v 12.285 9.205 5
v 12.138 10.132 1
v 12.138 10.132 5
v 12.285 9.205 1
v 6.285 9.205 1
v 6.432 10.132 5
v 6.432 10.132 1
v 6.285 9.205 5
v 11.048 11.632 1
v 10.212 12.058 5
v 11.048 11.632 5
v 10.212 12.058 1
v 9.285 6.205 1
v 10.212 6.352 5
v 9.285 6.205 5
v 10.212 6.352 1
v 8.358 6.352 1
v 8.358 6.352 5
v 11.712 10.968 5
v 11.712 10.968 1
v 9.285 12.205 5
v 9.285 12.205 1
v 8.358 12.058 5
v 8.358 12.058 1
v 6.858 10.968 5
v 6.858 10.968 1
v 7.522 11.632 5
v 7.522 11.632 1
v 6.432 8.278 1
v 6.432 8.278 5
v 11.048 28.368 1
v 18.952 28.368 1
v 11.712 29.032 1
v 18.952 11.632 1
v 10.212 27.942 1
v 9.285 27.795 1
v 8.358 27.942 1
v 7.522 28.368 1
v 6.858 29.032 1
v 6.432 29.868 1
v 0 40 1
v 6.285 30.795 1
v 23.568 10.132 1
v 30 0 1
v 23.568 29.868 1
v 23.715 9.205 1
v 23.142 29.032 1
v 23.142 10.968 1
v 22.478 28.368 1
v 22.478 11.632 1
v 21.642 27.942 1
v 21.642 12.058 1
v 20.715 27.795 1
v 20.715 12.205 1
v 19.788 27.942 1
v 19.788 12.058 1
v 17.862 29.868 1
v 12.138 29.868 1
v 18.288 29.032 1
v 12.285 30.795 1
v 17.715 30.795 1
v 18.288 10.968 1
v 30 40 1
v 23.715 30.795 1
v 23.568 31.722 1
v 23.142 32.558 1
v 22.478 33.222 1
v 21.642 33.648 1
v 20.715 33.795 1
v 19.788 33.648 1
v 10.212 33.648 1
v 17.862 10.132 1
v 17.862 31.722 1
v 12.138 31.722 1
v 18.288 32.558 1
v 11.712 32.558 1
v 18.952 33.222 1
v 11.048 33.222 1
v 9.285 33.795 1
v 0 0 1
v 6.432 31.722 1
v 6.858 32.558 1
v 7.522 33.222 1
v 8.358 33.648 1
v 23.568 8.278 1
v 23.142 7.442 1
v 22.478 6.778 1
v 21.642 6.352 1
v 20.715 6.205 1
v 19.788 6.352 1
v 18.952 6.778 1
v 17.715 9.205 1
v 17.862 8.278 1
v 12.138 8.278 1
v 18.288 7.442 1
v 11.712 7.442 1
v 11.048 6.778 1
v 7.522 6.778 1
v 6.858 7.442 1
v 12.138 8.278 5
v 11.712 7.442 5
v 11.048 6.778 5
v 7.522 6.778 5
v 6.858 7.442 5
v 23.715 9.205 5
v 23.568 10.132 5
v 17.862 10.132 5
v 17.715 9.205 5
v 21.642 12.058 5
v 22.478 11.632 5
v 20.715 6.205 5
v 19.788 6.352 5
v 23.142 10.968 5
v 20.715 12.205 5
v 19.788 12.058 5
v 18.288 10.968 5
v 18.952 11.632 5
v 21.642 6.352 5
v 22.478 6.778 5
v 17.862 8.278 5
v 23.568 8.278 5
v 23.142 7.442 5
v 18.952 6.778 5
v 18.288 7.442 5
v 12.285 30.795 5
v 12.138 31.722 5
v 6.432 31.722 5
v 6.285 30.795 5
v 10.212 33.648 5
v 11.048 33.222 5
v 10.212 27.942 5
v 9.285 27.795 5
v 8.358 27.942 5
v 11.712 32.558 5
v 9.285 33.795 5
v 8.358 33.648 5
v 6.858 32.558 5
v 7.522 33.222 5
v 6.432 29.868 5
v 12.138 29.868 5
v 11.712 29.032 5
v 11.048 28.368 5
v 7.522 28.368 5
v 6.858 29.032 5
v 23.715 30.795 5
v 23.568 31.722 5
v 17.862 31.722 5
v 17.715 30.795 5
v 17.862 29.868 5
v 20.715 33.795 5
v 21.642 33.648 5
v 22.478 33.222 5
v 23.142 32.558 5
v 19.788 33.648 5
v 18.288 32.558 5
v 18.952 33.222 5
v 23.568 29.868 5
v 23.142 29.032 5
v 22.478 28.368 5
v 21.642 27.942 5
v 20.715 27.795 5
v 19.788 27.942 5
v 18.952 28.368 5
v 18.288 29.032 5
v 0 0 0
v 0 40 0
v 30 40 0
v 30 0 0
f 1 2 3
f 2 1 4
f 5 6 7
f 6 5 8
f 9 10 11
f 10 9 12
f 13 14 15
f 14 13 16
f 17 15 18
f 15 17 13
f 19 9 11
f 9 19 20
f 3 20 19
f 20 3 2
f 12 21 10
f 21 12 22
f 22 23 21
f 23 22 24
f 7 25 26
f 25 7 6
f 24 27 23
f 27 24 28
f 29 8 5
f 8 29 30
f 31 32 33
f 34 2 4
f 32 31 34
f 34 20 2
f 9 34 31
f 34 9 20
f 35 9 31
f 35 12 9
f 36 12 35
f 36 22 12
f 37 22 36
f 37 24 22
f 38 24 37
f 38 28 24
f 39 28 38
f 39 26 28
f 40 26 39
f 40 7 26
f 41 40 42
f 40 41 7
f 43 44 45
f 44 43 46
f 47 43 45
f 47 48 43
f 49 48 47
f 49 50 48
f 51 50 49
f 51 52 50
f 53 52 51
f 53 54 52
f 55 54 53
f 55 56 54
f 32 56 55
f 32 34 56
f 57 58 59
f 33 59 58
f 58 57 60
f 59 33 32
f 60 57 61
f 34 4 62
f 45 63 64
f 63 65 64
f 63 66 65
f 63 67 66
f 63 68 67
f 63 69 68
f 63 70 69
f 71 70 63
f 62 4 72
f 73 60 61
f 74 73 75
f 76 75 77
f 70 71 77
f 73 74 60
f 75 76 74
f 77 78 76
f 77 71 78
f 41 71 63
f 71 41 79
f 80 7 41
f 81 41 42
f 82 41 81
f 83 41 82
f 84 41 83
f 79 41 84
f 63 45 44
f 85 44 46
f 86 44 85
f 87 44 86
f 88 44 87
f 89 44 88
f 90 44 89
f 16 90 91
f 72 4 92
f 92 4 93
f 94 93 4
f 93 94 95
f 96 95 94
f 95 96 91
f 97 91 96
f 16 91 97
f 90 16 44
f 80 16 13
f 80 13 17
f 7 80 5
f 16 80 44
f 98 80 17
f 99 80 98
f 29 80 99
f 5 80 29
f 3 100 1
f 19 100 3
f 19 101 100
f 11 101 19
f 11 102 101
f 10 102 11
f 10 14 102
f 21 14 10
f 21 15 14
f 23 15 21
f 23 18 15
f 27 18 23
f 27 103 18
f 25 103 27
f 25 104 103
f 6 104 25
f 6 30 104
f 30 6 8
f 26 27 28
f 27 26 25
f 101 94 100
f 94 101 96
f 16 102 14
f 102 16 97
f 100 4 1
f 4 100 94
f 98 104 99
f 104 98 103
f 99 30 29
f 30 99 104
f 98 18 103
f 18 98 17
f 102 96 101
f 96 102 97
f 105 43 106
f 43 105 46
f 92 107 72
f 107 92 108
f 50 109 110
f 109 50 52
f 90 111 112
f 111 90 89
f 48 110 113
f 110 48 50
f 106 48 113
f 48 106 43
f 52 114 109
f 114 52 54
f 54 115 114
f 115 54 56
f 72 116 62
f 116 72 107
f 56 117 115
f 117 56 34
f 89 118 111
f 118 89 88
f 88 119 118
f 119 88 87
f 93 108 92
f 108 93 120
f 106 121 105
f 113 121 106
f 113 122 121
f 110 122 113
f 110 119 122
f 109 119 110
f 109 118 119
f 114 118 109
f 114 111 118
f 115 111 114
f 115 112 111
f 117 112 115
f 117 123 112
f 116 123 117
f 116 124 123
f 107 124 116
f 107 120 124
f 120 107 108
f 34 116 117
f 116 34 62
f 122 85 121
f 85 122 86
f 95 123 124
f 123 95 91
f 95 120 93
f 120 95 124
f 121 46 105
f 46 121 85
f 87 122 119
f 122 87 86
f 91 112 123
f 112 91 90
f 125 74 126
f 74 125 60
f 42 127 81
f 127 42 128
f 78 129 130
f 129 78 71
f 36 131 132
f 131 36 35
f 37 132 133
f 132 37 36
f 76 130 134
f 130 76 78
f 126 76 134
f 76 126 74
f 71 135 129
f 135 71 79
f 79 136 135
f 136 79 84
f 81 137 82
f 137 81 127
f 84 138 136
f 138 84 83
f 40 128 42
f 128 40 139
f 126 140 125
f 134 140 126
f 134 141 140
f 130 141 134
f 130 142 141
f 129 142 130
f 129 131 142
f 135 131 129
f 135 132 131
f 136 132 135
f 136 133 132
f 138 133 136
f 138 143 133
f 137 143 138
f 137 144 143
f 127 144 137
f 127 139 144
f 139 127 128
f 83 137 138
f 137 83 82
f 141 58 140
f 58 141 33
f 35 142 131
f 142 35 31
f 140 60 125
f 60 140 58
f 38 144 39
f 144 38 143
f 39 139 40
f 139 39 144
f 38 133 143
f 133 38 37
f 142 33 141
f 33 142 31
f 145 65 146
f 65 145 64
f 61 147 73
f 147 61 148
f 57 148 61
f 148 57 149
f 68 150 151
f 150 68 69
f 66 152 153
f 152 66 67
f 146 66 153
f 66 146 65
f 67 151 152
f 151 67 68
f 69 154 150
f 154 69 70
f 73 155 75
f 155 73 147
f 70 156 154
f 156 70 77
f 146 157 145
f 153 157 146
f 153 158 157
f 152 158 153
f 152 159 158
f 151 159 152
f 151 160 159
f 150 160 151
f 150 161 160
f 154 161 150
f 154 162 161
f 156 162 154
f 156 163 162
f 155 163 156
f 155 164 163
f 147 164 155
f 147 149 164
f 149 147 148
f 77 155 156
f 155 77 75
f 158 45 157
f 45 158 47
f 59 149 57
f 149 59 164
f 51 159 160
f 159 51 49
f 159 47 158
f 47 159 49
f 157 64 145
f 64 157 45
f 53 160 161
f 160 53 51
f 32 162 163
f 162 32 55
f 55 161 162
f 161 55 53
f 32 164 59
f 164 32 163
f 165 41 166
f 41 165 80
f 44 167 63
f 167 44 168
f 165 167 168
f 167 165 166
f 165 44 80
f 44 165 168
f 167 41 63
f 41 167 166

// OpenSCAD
// file: ../../trinket-mini-mounting-standoffs.scad
function xHoleDeltaBottomRight() = 11.43;

function yHoleDelta() = 21.59;

module trinketMiniStandoffs()
{
    radius = 3;
    height = 4;
    sides = 20;
    
    // this is the 'bottom left' standoff; it is on the reset button end of the Trinket Mini
    cylinder(r=radius, h = height, $fn=sides);
    
    // this is the 'bottom right' standoff; it is on the reset button end    
    translate([xHoleDeltaBottomRight(),0,0])
    cylinder(r=radius, h = height, $fn=sides);
    
    // this is the 'top left standoff; it is on the power/USB end of the Trinket Mini    
    translate([0, yHoleDelta(),0])
    cylinder(r=radius, h = height, $fn=sides);
    
    // this is the 'top right standoff; it is on the power/USB end of the Trinket Mini
    translate([xHoleDeltaBottomRight(), yHoleDelta() ,0])
    cylinder(r=radius, h = height, $fn=sides);
}
// main file
use <../../trinket-mini-mounting-standoffs.scad>

xLength = 30;
yLength = 40;
zLength = 1;

union()
{
    cube([xLength, yLength, zLength]);

    
    xTranslate = xLength / 2.0 - xHoleDeltaBottomRight() / 2.0;
    yTranslate = yLength / 2.0 - yHoleDelta() / 2.0;
    
    translate([xTranslate, yTranslate, zLength])
    trinketMiniStandoffs();
}
